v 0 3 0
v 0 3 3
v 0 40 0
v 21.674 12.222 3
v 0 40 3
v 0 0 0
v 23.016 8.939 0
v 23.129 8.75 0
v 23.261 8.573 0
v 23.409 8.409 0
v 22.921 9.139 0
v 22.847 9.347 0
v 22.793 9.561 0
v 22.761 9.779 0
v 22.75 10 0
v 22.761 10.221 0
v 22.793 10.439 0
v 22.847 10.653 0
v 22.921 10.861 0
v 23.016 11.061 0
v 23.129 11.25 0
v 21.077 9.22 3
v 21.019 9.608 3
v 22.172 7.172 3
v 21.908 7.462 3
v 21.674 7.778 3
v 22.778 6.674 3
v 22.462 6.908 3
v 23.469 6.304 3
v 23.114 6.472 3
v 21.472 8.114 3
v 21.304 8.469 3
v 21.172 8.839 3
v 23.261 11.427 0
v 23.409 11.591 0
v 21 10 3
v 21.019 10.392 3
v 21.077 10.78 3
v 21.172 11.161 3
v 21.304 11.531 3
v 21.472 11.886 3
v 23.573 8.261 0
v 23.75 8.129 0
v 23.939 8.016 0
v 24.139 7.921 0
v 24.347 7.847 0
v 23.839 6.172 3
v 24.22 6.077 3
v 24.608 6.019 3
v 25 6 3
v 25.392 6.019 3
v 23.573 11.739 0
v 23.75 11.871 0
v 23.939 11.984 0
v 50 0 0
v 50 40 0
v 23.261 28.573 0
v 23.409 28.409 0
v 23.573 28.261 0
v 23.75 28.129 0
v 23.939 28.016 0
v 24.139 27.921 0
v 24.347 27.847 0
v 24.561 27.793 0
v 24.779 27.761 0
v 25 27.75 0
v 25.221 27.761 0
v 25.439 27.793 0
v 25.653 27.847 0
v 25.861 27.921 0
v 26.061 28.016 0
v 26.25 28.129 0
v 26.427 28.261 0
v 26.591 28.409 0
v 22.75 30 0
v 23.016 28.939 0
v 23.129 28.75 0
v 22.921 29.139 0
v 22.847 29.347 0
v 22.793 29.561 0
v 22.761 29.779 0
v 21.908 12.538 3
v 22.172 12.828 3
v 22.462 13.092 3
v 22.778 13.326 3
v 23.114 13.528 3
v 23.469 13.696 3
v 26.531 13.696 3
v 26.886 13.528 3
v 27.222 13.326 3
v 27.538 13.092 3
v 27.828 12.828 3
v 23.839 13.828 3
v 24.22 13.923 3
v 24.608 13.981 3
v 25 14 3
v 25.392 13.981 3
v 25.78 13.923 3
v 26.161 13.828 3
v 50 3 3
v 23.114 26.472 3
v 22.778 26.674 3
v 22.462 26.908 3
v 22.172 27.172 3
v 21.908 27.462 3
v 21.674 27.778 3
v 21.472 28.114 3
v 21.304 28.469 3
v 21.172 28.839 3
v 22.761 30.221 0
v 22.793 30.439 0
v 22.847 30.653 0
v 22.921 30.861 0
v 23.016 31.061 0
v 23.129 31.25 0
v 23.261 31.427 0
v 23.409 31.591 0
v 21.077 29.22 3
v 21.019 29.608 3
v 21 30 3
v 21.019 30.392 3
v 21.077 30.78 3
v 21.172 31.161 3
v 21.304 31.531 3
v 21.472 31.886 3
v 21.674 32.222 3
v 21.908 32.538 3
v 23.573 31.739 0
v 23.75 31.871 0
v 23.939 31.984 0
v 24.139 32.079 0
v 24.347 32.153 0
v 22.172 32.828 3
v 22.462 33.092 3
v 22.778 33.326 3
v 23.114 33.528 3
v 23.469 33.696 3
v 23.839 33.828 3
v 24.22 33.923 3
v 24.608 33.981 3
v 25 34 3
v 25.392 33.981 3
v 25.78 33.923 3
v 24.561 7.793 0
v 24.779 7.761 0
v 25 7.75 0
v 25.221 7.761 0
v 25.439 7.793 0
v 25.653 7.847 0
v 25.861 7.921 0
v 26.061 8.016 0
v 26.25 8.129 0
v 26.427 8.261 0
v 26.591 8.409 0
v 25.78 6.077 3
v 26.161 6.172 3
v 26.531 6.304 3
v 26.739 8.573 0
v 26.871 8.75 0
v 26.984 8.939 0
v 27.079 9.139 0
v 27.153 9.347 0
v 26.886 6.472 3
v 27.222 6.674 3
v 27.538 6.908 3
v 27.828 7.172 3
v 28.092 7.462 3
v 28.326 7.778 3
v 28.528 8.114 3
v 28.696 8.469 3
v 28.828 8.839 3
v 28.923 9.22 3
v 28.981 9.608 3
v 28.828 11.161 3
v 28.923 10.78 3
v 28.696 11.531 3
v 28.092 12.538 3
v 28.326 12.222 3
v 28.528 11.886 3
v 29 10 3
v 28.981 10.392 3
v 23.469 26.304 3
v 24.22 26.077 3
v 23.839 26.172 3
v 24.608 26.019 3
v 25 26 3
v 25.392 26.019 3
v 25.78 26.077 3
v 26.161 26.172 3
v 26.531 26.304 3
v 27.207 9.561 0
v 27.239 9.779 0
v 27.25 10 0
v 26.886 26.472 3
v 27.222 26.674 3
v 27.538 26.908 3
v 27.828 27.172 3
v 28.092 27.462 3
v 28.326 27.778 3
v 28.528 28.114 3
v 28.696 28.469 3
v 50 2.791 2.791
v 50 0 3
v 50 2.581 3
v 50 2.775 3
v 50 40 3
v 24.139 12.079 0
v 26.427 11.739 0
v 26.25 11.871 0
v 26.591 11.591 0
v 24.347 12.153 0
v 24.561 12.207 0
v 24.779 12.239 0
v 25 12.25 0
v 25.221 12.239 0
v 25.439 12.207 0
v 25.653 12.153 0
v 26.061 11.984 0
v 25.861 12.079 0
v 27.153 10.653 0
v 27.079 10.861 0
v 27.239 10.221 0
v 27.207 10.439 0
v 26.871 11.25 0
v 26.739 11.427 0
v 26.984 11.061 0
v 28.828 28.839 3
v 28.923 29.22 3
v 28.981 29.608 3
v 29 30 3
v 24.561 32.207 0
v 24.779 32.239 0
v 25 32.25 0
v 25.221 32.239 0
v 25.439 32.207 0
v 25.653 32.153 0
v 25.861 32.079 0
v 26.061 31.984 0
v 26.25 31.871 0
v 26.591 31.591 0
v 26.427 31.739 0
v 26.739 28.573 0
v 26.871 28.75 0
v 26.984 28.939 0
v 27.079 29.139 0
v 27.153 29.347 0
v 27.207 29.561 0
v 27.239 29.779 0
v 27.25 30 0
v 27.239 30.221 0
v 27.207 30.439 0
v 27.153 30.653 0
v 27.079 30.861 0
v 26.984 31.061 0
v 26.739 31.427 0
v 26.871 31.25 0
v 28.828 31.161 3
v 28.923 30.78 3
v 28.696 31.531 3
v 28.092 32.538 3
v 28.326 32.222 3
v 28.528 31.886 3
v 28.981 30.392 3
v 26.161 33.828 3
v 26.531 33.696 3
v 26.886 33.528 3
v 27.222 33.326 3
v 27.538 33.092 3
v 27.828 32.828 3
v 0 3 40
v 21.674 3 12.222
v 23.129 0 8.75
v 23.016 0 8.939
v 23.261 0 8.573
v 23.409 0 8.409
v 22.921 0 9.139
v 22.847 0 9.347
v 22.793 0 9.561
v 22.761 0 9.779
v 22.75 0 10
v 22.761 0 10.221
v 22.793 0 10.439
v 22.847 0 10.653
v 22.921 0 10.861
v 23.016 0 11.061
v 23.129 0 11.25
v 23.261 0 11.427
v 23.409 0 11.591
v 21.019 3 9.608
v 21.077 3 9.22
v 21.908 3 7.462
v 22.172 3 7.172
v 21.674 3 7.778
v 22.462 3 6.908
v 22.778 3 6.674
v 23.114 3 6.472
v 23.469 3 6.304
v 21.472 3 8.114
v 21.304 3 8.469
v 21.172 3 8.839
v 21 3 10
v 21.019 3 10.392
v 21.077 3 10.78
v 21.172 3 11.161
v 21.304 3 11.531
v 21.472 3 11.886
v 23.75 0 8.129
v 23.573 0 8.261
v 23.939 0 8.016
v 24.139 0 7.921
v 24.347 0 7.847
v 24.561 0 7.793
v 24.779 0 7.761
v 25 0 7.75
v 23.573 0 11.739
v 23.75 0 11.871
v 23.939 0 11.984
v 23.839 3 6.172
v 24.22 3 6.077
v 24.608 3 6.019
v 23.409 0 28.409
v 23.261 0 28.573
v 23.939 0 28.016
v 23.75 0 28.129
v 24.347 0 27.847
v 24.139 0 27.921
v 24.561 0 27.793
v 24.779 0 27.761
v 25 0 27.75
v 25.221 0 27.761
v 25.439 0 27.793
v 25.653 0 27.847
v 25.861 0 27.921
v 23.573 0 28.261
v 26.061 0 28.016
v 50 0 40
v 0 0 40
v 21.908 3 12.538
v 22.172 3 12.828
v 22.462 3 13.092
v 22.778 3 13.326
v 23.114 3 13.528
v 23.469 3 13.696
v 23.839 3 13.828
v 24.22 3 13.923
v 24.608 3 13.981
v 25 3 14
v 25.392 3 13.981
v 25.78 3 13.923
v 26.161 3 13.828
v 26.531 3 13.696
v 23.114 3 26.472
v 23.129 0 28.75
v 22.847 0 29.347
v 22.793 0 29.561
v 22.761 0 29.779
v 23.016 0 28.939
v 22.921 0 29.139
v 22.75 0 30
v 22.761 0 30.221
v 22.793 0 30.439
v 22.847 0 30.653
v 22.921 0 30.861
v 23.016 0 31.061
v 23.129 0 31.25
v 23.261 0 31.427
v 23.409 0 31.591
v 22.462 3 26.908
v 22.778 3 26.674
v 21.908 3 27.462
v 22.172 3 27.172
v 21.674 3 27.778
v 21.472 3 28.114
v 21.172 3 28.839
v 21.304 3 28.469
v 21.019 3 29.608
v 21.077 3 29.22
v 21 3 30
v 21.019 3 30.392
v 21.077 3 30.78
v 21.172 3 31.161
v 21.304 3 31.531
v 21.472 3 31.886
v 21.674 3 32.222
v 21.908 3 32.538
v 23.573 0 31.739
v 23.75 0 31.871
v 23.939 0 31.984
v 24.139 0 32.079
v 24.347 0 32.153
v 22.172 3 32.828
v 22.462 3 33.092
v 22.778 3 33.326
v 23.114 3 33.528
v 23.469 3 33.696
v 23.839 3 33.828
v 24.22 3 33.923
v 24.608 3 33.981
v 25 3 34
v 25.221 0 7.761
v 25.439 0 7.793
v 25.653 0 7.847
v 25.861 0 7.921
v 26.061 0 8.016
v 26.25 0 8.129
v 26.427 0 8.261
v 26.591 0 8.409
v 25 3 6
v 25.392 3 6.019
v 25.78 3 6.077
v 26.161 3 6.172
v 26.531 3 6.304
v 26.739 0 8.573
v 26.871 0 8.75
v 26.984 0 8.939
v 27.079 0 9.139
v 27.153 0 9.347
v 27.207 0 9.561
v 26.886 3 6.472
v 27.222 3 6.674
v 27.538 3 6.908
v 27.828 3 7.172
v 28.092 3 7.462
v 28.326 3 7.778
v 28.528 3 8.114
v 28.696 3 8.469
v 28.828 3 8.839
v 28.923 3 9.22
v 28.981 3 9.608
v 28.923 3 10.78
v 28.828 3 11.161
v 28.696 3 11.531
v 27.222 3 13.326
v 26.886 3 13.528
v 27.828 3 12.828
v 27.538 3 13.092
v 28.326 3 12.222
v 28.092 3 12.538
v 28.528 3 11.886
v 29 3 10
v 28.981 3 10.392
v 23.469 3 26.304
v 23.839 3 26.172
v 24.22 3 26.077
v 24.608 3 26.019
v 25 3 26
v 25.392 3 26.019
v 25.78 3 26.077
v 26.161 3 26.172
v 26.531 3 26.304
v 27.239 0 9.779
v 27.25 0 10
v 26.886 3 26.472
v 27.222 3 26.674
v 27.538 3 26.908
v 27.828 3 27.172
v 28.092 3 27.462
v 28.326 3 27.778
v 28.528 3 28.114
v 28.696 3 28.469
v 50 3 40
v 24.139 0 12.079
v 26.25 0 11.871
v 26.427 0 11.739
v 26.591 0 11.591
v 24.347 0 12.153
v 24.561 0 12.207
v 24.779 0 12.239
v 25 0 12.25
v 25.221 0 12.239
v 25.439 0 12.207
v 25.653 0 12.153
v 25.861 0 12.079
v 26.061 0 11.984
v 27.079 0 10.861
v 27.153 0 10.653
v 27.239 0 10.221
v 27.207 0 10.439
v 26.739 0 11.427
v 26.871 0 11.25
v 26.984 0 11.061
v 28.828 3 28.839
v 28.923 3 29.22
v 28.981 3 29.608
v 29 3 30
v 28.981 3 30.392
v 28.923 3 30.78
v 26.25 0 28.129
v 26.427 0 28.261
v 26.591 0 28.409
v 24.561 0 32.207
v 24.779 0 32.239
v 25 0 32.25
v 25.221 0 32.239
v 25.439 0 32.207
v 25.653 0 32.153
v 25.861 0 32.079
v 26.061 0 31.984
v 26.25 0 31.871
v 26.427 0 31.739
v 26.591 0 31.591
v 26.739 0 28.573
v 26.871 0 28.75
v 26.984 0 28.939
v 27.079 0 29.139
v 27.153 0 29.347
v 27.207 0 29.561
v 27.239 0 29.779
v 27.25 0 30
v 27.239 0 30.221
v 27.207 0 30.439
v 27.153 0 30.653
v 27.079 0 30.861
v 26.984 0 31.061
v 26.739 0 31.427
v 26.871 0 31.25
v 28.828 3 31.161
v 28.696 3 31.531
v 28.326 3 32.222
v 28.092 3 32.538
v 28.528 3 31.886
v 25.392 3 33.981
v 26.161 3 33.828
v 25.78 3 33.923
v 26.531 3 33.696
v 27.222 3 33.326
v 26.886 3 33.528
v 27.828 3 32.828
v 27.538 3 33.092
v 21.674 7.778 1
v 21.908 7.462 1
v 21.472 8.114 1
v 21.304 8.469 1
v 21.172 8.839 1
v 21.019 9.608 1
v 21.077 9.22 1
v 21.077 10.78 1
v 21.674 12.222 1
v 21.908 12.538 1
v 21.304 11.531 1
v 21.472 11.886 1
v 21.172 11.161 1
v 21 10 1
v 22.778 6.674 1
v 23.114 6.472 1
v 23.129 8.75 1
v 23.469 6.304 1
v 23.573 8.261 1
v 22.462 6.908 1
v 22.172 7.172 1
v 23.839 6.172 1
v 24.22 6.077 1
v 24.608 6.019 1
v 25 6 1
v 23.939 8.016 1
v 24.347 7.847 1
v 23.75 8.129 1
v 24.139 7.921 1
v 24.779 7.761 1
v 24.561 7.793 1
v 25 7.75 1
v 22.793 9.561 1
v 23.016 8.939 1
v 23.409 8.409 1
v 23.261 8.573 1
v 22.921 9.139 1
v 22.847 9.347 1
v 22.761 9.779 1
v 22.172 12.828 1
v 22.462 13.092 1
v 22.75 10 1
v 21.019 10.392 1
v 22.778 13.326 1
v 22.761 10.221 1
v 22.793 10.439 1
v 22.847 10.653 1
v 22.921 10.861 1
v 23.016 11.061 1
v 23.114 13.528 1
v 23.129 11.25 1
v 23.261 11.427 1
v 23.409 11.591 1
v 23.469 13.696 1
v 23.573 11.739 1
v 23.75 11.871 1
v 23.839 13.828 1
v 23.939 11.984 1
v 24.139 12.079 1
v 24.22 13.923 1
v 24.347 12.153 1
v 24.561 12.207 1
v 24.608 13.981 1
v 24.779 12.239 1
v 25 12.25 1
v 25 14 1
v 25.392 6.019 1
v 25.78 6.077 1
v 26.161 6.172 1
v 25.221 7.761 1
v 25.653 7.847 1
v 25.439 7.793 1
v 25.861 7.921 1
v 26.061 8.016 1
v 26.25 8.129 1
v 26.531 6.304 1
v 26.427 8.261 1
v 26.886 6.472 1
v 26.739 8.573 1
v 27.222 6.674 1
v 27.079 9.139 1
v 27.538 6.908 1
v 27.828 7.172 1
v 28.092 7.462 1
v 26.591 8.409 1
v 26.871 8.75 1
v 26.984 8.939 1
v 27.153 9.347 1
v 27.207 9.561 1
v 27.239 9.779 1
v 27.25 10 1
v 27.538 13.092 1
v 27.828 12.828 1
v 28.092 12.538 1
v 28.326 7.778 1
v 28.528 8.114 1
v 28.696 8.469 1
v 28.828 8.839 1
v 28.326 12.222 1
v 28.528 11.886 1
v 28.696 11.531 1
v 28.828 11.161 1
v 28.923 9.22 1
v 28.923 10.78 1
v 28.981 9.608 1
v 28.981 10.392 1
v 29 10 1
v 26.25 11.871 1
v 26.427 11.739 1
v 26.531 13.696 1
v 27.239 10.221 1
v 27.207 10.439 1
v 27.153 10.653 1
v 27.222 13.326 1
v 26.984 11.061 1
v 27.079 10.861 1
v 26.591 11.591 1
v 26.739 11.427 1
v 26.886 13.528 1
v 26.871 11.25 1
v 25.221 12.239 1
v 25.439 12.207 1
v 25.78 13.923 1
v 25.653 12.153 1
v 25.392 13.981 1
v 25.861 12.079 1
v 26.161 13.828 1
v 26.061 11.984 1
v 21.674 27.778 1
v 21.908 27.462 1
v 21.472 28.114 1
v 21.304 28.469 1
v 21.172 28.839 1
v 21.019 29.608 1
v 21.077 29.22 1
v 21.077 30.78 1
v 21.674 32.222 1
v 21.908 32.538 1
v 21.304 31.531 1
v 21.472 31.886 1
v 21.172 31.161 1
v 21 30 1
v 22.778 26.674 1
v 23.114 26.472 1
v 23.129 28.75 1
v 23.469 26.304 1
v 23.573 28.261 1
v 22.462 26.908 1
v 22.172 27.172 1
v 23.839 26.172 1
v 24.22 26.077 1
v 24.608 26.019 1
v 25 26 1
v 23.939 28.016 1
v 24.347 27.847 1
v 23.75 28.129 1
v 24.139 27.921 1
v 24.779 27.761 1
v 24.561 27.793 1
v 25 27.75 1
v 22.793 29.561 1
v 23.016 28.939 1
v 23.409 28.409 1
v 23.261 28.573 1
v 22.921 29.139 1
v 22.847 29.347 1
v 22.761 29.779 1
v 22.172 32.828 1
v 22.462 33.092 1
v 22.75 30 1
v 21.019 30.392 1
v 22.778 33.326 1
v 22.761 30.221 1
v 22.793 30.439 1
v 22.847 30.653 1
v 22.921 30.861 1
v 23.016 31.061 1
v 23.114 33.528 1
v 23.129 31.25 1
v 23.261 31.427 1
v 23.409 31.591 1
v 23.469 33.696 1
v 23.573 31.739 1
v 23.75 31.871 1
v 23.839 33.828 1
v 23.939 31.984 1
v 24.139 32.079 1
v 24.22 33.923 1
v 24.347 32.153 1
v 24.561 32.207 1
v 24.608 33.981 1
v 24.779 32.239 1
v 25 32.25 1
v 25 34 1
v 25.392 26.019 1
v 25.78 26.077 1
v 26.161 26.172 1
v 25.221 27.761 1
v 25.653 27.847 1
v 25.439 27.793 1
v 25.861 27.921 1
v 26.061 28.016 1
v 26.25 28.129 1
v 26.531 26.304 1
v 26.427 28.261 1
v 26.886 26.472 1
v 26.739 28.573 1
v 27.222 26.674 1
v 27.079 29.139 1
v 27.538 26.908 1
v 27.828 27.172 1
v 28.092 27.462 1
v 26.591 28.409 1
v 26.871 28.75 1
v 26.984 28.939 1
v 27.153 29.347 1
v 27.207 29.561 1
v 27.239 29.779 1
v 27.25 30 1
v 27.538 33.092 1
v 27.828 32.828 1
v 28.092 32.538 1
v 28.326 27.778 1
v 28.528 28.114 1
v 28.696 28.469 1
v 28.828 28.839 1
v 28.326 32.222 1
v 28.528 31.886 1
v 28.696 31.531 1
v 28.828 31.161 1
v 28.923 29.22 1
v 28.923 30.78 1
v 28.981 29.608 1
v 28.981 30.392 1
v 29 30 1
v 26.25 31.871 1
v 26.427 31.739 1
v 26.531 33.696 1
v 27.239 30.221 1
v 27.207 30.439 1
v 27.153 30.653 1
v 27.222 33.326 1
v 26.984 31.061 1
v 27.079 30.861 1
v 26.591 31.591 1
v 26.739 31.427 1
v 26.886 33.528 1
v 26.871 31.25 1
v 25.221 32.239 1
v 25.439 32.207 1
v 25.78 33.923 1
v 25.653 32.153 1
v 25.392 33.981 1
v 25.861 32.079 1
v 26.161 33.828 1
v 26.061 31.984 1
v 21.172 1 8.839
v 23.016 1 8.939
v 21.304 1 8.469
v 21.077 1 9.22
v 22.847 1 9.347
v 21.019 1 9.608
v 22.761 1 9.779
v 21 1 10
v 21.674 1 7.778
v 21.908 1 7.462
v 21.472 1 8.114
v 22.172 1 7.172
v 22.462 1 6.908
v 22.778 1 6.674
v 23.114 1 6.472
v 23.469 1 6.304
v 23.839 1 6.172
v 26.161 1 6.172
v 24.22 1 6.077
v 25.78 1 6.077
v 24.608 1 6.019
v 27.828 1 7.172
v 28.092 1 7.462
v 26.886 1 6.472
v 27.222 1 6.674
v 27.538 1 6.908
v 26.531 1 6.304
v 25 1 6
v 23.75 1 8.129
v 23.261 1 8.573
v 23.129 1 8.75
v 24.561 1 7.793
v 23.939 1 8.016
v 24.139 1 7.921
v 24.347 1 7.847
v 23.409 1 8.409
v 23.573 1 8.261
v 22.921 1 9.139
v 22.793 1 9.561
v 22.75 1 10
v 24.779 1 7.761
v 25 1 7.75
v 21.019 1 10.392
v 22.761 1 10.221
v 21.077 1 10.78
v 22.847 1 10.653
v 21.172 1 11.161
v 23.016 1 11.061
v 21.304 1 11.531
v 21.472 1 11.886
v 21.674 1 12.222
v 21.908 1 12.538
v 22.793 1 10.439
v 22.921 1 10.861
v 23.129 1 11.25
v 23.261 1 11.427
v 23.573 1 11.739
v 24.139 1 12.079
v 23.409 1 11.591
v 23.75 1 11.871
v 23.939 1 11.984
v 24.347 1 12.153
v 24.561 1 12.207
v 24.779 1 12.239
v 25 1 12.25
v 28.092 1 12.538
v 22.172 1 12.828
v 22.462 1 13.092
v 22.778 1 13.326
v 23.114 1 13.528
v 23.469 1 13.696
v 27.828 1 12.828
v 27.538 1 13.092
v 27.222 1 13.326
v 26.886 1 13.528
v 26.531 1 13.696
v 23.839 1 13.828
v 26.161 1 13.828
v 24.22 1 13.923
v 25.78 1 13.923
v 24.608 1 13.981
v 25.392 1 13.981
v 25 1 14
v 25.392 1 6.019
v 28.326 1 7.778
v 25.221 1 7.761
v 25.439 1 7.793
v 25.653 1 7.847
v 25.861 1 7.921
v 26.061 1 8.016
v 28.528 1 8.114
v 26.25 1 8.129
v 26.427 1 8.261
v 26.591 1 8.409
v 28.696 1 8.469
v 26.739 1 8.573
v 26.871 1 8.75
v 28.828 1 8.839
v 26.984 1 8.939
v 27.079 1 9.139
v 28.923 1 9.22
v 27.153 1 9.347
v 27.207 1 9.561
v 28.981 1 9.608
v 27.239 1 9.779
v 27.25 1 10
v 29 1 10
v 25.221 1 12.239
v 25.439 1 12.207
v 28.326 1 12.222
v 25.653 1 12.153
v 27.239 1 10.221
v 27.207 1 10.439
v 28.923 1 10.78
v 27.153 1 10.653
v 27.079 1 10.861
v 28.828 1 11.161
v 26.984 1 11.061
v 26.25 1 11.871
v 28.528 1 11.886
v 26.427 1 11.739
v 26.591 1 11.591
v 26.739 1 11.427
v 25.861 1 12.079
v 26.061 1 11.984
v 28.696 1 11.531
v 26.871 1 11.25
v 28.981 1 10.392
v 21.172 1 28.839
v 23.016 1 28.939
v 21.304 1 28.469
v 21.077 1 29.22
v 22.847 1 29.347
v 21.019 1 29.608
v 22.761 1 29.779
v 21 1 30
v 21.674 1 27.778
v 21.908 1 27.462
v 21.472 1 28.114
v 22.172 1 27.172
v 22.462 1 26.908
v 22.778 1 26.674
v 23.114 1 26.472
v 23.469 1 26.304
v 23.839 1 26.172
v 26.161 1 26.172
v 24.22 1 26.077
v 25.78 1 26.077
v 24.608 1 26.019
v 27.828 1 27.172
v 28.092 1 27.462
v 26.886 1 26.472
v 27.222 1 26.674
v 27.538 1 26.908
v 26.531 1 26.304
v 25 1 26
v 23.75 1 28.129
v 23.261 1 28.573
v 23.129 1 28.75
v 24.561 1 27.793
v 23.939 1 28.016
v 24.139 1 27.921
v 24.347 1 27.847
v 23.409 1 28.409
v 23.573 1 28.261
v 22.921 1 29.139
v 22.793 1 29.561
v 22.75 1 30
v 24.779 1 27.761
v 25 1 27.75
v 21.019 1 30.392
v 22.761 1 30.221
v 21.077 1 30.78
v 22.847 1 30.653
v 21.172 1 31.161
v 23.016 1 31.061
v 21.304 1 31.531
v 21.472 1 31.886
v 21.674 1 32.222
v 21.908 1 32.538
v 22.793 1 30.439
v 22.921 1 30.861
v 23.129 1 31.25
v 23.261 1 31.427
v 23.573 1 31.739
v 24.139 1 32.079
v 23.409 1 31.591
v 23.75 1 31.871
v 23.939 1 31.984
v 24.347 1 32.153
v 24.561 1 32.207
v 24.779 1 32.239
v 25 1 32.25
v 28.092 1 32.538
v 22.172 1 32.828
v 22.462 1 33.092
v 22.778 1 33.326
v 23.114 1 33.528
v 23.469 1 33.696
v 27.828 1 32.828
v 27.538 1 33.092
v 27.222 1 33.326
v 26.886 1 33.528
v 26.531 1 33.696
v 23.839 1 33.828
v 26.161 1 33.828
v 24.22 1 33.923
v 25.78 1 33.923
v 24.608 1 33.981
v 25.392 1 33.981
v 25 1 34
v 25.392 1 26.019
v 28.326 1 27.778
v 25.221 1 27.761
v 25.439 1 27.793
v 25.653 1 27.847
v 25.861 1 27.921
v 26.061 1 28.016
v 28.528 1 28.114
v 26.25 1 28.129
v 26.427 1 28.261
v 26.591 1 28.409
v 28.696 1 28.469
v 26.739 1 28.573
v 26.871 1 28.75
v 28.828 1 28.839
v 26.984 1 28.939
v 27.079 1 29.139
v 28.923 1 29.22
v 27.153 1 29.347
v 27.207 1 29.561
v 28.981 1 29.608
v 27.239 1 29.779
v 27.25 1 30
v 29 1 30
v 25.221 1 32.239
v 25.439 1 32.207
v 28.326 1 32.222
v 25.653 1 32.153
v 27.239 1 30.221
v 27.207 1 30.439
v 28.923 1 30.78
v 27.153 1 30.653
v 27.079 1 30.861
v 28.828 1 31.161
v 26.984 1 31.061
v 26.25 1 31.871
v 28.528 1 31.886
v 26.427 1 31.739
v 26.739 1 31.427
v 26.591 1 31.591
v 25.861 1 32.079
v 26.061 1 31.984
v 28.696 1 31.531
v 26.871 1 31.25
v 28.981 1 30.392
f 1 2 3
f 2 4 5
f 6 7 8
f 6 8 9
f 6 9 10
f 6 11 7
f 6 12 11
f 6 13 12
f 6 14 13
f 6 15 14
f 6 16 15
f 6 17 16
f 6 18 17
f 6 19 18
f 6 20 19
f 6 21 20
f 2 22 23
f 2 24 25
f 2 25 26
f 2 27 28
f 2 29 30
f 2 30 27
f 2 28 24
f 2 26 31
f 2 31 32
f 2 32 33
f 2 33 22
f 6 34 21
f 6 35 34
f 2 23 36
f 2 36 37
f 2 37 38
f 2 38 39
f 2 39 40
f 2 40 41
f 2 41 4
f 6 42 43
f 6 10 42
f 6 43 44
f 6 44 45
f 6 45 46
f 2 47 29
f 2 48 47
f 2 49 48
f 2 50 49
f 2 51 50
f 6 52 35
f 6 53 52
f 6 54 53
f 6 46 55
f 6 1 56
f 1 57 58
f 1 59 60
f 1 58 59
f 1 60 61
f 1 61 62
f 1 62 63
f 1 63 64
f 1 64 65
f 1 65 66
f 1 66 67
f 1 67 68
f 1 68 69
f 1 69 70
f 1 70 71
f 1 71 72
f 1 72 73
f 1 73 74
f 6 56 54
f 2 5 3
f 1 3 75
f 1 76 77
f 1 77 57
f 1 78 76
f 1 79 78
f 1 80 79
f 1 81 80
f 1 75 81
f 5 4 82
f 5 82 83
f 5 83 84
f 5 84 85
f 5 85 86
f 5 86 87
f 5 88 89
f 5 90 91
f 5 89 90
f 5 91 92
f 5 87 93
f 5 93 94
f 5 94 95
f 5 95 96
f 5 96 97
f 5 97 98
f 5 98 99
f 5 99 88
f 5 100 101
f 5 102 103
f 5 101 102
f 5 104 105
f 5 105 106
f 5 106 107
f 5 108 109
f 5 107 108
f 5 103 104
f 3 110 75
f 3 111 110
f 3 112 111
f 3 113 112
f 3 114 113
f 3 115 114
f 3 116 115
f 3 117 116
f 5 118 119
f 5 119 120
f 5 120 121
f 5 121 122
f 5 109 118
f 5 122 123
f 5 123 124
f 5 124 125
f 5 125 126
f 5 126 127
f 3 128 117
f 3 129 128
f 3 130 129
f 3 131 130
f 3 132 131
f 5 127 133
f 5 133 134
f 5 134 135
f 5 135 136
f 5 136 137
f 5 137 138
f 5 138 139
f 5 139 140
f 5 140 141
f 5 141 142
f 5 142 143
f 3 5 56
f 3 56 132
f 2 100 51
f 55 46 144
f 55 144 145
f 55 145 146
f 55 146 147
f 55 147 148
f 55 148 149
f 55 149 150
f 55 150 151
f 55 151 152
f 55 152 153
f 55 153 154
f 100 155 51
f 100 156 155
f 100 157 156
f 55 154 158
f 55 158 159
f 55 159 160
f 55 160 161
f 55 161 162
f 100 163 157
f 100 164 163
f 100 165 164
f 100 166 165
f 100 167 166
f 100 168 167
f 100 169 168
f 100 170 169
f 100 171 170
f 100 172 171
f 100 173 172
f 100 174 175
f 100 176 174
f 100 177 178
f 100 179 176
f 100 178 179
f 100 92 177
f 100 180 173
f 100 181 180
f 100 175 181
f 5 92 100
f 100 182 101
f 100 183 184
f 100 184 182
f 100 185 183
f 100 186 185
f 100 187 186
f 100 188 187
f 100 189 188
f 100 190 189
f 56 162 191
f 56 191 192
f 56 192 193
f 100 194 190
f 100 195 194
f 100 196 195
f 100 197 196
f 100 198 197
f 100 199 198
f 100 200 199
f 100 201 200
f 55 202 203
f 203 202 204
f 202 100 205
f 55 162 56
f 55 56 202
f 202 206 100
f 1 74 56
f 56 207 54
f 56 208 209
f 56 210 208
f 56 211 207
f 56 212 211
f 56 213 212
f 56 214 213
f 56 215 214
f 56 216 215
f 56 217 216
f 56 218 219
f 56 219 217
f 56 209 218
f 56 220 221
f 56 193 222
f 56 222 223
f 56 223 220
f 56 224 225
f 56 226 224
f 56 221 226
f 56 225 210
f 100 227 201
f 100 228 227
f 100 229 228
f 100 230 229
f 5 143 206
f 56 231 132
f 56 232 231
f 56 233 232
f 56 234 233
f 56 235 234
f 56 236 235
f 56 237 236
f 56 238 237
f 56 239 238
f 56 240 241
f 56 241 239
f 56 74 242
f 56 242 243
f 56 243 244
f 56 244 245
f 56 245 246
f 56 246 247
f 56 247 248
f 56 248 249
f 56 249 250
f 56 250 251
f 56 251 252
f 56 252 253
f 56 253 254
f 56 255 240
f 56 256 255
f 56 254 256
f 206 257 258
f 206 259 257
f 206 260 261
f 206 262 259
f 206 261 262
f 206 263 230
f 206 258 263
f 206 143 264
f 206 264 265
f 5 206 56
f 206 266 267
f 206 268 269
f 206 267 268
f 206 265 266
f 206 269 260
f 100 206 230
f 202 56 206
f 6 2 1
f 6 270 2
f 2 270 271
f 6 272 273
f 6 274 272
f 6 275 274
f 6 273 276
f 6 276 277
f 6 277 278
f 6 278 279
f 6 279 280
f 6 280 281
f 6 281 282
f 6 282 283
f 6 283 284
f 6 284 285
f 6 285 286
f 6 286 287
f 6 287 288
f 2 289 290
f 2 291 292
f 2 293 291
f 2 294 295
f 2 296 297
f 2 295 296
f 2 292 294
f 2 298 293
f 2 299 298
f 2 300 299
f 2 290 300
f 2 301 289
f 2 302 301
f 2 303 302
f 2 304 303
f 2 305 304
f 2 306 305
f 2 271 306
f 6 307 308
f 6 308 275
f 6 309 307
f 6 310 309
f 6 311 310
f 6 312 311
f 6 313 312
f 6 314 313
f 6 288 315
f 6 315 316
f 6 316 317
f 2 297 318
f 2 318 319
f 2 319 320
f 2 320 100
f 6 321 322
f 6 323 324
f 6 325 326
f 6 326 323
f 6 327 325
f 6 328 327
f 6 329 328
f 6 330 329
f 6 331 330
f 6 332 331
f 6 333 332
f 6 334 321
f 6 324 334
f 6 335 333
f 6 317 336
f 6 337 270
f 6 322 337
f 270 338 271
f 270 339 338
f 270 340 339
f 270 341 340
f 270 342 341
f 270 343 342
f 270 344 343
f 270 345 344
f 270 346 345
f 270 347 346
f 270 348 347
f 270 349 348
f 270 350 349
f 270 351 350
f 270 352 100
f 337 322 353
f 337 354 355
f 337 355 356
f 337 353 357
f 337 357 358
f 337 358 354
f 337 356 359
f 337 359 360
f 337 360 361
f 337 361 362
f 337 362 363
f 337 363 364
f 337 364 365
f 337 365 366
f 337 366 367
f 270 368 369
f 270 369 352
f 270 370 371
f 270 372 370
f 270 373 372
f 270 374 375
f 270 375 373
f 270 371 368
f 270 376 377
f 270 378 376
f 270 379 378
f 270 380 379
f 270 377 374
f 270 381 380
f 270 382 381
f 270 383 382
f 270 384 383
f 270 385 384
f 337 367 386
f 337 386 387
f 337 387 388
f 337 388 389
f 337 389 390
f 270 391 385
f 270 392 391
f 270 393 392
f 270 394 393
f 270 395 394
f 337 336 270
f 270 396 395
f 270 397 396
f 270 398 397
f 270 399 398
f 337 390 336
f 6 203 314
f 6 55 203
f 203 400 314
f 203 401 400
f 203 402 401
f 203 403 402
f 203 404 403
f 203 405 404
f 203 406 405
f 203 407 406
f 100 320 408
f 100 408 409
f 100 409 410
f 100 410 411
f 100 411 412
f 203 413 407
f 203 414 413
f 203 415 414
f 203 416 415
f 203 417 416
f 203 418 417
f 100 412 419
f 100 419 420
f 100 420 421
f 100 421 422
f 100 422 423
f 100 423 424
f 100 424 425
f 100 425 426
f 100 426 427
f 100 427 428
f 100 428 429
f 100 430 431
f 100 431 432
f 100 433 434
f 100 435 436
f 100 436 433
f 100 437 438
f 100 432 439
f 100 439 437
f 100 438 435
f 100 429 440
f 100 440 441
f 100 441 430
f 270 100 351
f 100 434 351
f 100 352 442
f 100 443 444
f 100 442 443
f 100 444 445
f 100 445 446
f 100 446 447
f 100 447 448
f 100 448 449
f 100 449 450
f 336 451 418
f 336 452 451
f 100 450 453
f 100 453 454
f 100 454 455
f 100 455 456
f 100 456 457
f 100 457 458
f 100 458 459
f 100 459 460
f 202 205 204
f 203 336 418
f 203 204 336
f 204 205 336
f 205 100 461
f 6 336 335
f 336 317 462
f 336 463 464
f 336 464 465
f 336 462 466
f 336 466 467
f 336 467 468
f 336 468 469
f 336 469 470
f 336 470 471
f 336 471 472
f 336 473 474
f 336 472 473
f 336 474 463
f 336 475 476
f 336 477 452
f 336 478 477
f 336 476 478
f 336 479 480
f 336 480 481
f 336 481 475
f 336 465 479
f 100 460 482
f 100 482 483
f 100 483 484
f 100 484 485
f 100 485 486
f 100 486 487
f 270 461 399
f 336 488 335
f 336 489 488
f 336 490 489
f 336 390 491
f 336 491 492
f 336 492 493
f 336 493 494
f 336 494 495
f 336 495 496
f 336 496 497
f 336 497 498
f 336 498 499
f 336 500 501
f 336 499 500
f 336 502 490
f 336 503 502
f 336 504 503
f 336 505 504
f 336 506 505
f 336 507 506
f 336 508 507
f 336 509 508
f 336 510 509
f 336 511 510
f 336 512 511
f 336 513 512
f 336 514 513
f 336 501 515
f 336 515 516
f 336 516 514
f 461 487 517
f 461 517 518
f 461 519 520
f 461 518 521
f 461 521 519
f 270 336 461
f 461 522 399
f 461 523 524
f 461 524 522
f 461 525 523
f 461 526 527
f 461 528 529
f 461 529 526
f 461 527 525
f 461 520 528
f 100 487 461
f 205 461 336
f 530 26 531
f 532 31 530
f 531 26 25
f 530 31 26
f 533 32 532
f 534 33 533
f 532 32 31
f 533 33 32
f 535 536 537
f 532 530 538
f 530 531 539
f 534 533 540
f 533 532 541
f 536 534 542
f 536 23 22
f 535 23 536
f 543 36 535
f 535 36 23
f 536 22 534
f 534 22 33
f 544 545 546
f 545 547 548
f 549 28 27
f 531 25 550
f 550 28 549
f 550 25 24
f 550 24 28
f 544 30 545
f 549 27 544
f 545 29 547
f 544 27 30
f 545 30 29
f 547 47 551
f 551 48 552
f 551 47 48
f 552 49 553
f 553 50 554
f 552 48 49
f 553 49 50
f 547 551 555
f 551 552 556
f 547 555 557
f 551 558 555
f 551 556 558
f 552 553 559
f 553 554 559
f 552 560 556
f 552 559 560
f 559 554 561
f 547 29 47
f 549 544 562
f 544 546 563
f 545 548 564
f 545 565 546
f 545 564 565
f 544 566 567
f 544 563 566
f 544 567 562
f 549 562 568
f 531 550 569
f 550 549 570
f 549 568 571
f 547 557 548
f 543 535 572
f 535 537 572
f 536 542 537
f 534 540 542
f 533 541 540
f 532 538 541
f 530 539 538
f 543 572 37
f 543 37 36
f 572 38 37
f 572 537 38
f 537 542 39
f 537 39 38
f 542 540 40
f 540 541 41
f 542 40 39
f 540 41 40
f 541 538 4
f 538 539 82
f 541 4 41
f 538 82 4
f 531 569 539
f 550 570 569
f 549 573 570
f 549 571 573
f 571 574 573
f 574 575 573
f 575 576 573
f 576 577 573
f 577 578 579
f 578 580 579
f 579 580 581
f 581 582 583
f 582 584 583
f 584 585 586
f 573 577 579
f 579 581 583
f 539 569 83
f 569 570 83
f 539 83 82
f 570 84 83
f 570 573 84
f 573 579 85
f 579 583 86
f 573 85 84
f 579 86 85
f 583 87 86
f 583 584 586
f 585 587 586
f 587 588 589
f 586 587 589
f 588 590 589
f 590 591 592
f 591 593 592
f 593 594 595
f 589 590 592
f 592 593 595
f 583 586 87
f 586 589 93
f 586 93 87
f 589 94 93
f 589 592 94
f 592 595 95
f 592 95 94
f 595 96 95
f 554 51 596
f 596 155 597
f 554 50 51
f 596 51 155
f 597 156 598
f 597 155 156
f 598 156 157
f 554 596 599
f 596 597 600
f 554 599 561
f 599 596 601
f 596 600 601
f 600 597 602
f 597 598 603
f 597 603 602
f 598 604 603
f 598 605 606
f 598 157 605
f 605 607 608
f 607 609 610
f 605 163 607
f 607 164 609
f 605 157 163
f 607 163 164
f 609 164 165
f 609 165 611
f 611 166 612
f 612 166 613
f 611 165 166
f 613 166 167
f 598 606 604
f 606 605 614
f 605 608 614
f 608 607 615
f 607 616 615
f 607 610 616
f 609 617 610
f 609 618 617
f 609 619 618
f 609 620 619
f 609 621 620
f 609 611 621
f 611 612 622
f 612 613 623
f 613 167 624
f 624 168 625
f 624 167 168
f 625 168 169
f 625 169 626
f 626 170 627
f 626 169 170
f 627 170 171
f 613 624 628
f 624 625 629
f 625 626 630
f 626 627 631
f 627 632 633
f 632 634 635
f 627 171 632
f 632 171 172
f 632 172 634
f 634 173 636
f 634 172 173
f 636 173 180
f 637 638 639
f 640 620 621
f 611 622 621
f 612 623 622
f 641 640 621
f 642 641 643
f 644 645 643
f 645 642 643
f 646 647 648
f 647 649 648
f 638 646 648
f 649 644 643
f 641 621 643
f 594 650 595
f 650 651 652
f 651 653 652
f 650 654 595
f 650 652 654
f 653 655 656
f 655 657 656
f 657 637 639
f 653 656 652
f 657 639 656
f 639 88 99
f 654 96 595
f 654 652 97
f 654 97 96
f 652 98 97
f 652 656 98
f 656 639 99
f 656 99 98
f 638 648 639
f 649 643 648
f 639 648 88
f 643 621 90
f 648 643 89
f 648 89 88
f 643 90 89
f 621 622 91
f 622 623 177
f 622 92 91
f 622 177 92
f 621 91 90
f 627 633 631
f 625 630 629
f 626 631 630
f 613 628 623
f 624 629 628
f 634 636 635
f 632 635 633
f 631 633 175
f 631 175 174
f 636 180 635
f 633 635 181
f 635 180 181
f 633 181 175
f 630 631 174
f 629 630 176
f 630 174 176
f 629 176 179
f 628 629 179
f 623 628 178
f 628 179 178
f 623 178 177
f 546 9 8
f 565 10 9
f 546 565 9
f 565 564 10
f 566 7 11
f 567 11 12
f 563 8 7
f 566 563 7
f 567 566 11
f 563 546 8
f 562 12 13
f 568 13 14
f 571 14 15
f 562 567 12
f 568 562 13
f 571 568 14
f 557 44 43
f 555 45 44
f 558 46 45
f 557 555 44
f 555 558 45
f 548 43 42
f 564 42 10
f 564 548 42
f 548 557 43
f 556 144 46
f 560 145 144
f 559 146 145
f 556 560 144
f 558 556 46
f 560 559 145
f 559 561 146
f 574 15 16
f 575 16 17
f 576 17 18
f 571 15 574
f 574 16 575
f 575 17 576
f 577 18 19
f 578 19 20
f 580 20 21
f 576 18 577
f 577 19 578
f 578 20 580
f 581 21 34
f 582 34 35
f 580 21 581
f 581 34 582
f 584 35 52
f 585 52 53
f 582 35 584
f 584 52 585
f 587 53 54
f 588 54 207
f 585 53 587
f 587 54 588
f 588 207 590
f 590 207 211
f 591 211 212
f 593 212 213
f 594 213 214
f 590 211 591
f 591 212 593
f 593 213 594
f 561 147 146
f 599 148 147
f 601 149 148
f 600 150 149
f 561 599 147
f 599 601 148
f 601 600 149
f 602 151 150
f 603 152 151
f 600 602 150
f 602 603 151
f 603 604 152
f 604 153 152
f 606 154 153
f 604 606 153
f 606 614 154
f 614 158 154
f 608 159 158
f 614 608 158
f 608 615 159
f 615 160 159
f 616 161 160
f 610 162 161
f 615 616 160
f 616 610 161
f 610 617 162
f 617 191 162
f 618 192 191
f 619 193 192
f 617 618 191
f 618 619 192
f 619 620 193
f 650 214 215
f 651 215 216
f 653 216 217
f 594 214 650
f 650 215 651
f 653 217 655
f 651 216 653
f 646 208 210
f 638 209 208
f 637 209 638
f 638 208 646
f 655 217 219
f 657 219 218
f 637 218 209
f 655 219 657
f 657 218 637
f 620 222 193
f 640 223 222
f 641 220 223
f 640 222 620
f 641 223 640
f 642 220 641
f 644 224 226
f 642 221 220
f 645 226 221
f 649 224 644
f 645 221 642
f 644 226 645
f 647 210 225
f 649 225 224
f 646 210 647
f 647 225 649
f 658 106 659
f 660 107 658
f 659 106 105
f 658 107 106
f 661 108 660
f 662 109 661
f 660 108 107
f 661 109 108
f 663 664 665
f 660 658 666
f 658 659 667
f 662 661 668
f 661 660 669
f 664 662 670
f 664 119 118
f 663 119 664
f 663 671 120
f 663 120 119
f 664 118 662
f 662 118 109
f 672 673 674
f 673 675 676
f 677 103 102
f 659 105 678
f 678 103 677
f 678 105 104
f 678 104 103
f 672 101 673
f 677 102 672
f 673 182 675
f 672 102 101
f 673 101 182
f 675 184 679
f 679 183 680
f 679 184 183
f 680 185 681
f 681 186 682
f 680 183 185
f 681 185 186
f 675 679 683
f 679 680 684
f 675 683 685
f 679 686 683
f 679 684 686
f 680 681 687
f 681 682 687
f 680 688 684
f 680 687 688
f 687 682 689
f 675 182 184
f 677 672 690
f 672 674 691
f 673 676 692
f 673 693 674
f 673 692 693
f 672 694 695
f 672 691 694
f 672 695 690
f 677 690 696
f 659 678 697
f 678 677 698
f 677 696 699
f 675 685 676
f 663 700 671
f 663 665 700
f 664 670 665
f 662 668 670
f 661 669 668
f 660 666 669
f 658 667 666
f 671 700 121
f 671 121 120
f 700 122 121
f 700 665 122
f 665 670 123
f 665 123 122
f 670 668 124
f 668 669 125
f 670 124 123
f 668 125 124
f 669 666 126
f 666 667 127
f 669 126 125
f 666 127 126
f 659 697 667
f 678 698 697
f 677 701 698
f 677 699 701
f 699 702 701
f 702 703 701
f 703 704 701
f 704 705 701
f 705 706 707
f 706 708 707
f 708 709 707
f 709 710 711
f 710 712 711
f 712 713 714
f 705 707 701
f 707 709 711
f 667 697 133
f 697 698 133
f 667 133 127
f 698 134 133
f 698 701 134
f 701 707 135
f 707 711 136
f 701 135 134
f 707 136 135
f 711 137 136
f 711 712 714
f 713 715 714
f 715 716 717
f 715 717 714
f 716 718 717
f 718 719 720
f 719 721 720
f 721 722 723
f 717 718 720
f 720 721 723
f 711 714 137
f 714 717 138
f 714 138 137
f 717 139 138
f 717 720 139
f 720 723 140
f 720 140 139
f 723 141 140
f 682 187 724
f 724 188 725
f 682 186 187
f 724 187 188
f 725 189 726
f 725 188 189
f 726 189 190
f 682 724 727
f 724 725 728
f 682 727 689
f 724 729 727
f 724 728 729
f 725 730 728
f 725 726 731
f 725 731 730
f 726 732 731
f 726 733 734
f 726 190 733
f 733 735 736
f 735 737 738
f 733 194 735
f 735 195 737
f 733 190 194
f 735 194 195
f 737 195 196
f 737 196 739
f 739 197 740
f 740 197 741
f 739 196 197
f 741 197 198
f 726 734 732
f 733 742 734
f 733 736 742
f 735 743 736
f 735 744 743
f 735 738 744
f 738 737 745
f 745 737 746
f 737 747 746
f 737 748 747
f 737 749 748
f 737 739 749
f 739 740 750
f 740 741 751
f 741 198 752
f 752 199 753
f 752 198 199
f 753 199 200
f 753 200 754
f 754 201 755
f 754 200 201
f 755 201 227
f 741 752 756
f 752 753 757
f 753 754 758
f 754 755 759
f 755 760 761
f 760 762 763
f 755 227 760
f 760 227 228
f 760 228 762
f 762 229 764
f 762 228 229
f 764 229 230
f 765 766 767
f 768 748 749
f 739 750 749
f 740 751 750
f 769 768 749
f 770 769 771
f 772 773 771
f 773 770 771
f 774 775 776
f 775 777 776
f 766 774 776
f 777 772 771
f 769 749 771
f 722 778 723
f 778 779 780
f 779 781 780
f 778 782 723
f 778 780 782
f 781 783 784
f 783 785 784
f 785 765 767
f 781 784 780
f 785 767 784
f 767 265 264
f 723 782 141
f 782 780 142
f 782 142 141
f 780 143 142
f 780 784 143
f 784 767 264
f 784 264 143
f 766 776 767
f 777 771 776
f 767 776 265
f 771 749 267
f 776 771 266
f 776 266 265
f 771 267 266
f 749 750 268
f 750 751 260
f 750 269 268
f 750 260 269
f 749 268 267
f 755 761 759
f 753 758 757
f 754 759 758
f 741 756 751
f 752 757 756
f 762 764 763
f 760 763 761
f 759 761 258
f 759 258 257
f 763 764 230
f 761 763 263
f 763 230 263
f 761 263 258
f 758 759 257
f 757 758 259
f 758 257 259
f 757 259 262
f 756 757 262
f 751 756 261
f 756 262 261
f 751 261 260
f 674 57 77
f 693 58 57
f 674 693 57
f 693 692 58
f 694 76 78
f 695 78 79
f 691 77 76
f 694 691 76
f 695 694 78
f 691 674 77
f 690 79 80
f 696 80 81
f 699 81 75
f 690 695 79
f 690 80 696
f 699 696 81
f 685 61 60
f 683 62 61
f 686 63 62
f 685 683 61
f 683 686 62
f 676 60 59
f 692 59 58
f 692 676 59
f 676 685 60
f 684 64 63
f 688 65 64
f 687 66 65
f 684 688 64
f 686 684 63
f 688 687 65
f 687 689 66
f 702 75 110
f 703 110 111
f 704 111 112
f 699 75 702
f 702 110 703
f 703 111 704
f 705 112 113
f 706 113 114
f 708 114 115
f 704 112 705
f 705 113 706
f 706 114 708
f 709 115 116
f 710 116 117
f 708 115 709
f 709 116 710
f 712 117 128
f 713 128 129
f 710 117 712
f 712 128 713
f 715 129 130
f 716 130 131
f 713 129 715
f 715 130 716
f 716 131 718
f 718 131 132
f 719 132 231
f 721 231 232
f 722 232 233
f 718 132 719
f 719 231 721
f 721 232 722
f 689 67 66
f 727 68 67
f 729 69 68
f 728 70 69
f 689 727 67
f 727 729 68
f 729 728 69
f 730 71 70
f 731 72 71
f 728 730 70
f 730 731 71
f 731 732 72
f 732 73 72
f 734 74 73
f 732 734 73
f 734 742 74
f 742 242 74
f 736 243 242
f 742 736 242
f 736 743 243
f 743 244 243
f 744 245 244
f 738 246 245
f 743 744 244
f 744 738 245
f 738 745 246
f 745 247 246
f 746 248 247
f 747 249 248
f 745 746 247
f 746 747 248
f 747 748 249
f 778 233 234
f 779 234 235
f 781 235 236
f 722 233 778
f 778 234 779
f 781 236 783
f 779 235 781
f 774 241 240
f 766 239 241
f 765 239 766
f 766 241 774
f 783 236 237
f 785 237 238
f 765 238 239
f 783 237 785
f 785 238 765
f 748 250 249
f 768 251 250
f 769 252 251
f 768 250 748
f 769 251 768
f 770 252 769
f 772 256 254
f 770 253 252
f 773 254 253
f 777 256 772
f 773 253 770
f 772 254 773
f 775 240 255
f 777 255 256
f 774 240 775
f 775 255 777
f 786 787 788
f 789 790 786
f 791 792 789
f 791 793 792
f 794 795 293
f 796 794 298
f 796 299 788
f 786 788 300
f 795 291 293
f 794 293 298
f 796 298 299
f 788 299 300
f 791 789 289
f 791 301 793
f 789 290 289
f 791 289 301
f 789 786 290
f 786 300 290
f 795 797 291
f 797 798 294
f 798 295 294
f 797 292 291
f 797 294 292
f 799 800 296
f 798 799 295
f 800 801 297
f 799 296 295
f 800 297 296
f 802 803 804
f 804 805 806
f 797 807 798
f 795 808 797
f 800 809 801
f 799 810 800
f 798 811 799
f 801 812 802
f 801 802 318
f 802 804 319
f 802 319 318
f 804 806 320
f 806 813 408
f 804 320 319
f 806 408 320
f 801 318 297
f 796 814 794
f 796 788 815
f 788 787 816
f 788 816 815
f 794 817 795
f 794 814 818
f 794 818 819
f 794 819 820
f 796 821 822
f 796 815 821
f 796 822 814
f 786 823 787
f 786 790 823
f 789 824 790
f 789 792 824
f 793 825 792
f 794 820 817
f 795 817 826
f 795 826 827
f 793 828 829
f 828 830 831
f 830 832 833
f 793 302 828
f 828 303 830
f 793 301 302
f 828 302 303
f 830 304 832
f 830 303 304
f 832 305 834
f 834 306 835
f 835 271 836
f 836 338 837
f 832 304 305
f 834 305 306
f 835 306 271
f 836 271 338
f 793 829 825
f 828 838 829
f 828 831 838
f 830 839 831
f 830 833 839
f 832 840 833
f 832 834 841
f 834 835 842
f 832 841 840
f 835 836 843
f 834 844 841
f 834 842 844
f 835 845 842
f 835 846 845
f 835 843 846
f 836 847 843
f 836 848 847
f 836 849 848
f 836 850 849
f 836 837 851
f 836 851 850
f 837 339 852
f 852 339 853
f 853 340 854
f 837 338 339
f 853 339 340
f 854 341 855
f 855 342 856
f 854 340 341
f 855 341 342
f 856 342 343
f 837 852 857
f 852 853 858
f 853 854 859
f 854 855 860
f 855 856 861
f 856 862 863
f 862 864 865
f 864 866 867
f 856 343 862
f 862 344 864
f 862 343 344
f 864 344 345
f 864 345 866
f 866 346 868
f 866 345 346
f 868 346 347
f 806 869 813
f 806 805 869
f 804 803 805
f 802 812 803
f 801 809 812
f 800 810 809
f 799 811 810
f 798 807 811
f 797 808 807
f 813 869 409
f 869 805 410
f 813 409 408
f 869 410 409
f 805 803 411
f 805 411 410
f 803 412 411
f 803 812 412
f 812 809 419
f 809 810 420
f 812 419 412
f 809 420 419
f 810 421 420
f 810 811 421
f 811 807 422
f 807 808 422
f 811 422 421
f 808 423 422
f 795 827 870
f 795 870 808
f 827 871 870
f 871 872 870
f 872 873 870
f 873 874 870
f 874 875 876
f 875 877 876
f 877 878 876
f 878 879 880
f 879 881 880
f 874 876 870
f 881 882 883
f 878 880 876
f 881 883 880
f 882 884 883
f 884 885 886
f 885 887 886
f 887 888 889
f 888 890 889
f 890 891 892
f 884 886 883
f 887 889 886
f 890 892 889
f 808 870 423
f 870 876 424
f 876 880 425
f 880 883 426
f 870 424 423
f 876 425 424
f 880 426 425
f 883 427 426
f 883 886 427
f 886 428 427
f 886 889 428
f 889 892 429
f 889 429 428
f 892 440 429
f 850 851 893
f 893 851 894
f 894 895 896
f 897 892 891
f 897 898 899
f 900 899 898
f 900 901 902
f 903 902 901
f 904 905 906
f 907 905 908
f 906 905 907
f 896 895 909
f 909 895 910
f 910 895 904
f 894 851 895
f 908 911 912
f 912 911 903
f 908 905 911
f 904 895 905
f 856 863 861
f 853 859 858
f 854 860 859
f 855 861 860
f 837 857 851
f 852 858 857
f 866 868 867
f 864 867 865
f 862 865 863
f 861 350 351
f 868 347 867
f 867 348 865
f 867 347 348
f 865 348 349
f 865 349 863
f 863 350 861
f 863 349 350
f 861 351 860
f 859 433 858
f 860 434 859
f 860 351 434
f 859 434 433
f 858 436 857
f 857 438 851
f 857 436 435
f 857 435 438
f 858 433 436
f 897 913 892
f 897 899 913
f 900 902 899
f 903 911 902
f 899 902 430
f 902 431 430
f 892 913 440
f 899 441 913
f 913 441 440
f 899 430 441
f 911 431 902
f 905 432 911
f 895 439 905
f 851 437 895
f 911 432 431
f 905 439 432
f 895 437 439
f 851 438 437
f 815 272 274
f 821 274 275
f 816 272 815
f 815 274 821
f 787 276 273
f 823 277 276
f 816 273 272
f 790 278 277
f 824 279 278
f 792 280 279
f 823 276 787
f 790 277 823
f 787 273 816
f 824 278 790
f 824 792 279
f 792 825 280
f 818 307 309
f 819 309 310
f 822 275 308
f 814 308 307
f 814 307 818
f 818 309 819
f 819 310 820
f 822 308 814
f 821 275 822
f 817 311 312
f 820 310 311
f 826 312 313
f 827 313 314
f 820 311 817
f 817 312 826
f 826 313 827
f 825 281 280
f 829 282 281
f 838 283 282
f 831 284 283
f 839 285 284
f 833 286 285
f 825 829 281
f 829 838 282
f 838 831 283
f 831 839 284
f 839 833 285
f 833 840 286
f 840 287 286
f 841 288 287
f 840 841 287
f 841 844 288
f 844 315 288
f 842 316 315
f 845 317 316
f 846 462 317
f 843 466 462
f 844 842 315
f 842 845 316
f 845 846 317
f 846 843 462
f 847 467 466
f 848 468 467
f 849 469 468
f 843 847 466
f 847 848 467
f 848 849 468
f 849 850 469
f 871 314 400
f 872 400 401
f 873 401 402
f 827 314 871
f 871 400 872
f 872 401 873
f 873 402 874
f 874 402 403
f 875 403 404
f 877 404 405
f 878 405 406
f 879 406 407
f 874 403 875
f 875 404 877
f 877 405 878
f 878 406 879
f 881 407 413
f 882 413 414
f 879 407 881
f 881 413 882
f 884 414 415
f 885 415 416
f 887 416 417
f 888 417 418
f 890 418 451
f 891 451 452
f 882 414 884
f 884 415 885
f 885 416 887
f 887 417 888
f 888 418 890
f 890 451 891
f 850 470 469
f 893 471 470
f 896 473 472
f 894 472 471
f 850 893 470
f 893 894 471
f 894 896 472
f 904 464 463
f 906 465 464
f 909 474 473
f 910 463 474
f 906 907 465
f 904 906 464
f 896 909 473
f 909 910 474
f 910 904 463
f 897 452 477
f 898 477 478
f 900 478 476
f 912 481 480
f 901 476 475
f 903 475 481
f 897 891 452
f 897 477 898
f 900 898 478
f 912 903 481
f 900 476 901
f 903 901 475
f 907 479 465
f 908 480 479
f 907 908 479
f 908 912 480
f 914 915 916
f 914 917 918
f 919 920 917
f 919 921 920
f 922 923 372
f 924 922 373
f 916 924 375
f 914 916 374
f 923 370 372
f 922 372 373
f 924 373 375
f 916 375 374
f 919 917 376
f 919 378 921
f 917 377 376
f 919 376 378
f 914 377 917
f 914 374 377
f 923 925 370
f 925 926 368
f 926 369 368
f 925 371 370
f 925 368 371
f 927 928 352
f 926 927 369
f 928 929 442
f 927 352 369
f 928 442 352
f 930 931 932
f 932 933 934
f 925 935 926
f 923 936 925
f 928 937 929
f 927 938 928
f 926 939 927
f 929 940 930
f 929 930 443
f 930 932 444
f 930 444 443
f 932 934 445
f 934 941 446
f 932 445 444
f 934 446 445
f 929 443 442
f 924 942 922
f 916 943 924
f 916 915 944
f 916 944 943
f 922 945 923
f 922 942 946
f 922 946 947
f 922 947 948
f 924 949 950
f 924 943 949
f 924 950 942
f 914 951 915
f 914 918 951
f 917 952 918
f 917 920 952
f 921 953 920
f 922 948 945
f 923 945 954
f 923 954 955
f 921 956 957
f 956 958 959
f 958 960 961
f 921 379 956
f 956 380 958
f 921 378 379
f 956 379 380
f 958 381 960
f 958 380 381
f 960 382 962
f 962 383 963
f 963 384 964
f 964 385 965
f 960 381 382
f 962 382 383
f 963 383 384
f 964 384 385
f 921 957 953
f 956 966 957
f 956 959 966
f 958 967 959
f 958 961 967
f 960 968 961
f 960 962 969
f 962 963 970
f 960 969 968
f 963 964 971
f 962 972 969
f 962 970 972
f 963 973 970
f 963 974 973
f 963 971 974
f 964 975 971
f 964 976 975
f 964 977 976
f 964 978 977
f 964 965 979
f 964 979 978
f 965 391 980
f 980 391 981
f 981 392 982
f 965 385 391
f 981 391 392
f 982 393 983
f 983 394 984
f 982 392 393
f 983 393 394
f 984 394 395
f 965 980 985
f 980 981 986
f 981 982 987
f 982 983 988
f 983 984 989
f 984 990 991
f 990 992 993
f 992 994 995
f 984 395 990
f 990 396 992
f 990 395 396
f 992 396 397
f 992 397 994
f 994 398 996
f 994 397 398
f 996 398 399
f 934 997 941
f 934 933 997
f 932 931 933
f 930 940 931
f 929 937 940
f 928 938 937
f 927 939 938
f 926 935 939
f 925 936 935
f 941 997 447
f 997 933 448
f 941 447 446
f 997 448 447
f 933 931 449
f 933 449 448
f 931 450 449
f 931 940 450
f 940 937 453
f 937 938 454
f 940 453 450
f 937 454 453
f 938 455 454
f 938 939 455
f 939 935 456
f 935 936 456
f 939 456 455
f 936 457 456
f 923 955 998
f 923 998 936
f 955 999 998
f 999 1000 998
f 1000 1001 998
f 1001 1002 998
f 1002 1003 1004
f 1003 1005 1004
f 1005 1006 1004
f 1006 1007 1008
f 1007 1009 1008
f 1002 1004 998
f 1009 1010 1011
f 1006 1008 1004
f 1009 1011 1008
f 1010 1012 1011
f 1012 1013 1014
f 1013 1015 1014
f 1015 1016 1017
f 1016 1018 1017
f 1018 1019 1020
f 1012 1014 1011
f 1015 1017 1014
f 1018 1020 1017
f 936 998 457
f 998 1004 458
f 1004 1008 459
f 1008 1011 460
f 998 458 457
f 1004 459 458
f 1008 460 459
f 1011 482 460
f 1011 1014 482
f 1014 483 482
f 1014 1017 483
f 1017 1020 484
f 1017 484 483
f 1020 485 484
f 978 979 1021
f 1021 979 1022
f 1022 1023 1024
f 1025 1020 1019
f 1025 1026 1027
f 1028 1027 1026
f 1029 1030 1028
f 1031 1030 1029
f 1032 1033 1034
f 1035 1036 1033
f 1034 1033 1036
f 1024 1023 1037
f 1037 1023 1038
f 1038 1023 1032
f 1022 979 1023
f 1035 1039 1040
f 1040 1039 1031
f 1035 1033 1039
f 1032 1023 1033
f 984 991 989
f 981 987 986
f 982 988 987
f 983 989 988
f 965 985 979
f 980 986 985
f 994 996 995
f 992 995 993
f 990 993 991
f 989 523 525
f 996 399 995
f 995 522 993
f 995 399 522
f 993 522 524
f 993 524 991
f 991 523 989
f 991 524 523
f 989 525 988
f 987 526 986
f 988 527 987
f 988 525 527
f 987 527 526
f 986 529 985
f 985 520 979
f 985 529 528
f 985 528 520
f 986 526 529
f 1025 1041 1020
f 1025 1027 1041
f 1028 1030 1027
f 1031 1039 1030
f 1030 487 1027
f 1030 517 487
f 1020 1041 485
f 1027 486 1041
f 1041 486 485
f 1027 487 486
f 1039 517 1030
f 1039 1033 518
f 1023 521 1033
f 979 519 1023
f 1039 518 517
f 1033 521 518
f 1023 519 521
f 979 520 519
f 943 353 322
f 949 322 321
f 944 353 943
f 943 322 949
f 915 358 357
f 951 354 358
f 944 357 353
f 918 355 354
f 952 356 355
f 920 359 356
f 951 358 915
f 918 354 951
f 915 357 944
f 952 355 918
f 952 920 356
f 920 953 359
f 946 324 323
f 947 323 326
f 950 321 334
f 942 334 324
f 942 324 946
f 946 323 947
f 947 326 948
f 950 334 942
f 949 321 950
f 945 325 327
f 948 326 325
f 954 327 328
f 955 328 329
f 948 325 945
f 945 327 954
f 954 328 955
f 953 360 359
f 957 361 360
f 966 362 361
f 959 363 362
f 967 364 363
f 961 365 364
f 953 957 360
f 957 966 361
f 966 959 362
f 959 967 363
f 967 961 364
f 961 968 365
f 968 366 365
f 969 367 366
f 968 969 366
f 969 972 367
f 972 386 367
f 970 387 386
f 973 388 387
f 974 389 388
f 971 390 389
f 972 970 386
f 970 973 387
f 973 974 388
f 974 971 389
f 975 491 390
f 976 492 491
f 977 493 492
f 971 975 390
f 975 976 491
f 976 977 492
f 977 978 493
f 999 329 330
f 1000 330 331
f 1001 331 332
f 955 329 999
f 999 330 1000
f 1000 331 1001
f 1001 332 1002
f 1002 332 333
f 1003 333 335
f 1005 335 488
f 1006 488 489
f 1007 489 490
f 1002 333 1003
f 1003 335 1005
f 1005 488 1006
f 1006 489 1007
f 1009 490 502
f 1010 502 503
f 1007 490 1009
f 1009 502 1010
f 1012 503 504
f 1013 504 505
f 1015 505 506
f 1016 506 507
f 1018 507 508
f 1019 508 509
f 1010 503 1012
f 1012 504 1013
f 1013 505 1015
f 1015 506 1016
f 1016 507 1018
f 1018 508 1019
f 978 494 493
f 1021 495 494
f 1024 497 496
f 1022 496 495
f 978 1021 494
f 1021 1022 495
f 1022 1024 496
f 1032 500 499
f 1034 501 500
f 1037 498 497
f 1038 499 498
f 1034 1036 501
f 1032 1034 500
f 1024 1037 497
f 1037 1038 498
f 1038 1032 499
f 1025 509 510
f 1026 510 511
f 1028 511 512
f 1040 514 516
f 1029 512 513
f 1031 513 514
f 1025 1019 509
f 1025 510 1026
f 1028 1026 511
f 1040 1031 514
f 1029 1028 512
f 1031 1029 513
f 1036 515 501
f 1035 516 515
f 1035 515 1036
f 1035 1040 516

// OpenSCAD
// L-bracket with countersunk holes (inner corner at origin)
// Horizontal flange: +Y direction
// Vertical flange: +Z direction

$fn = 64;

width = 50;        // X dimension
depth = 40;        // horizontal flange depth (Y)
height = 40;       // vertical flange height (Z)
thickness = 3;     // plate thickness

hole_d = 4.5;      // through hole diameter for M4
cs_d = 8;          // countersink diameter
cs_depth = 2;      // countersink depth
edge_offset = 10;  // distance from face edges for holes

module bracket() {
    union() {
        // horizontal flange (X × Y × Z)
        translate([0, 0, 0]) cube([width, depth, thickness]);
        // vertical flange (X × Y(thickness) × Z)
        translate([0, 0, 0]) cube([width, thickness, height]);
    }
}

module horiz_countersunk_hole(x, y) {
    // countersink (flat-bottom) on outside (top) of horizontal flange
    translate([x, y, thickness - cs_depth])
        cylinder(h = cs_depth, r = cs_d/2);
    // through hole
    translate([x, y, -5])
        cylinder(h = thickness + 10, r = hole_d/2);
}

module vert_countersunk_hole(x, z) {
    // countersink (flat-bottom) on outside (outer Y face) of vertical flange
    translate([x, thickness - cs_depth/2, z])
        rotate([90, 0, 0])
            cylinder(h = cs_depth, r = cs_d/2, center = true);
    // through hole (axis along Y)
    translate([x, thickness/2, z])
        rotate([90, 0, 0])
            cylinder(h = 200, r = hole_d/2, center = true);
}

difference() {
    bracket();

    // horizontal flange holes (centerline along X)
    for (ypos = [edge_offset, depth - edge_offset]) {
        horiz_countersunk_hole(width/2, ypos);
    }

    // vertical flange holes (centerline along X)
    for (zpos = [edge_offset, height - edge_offset]) {
        vert_countersunk_hole(width/2, zpos);
    }
}
